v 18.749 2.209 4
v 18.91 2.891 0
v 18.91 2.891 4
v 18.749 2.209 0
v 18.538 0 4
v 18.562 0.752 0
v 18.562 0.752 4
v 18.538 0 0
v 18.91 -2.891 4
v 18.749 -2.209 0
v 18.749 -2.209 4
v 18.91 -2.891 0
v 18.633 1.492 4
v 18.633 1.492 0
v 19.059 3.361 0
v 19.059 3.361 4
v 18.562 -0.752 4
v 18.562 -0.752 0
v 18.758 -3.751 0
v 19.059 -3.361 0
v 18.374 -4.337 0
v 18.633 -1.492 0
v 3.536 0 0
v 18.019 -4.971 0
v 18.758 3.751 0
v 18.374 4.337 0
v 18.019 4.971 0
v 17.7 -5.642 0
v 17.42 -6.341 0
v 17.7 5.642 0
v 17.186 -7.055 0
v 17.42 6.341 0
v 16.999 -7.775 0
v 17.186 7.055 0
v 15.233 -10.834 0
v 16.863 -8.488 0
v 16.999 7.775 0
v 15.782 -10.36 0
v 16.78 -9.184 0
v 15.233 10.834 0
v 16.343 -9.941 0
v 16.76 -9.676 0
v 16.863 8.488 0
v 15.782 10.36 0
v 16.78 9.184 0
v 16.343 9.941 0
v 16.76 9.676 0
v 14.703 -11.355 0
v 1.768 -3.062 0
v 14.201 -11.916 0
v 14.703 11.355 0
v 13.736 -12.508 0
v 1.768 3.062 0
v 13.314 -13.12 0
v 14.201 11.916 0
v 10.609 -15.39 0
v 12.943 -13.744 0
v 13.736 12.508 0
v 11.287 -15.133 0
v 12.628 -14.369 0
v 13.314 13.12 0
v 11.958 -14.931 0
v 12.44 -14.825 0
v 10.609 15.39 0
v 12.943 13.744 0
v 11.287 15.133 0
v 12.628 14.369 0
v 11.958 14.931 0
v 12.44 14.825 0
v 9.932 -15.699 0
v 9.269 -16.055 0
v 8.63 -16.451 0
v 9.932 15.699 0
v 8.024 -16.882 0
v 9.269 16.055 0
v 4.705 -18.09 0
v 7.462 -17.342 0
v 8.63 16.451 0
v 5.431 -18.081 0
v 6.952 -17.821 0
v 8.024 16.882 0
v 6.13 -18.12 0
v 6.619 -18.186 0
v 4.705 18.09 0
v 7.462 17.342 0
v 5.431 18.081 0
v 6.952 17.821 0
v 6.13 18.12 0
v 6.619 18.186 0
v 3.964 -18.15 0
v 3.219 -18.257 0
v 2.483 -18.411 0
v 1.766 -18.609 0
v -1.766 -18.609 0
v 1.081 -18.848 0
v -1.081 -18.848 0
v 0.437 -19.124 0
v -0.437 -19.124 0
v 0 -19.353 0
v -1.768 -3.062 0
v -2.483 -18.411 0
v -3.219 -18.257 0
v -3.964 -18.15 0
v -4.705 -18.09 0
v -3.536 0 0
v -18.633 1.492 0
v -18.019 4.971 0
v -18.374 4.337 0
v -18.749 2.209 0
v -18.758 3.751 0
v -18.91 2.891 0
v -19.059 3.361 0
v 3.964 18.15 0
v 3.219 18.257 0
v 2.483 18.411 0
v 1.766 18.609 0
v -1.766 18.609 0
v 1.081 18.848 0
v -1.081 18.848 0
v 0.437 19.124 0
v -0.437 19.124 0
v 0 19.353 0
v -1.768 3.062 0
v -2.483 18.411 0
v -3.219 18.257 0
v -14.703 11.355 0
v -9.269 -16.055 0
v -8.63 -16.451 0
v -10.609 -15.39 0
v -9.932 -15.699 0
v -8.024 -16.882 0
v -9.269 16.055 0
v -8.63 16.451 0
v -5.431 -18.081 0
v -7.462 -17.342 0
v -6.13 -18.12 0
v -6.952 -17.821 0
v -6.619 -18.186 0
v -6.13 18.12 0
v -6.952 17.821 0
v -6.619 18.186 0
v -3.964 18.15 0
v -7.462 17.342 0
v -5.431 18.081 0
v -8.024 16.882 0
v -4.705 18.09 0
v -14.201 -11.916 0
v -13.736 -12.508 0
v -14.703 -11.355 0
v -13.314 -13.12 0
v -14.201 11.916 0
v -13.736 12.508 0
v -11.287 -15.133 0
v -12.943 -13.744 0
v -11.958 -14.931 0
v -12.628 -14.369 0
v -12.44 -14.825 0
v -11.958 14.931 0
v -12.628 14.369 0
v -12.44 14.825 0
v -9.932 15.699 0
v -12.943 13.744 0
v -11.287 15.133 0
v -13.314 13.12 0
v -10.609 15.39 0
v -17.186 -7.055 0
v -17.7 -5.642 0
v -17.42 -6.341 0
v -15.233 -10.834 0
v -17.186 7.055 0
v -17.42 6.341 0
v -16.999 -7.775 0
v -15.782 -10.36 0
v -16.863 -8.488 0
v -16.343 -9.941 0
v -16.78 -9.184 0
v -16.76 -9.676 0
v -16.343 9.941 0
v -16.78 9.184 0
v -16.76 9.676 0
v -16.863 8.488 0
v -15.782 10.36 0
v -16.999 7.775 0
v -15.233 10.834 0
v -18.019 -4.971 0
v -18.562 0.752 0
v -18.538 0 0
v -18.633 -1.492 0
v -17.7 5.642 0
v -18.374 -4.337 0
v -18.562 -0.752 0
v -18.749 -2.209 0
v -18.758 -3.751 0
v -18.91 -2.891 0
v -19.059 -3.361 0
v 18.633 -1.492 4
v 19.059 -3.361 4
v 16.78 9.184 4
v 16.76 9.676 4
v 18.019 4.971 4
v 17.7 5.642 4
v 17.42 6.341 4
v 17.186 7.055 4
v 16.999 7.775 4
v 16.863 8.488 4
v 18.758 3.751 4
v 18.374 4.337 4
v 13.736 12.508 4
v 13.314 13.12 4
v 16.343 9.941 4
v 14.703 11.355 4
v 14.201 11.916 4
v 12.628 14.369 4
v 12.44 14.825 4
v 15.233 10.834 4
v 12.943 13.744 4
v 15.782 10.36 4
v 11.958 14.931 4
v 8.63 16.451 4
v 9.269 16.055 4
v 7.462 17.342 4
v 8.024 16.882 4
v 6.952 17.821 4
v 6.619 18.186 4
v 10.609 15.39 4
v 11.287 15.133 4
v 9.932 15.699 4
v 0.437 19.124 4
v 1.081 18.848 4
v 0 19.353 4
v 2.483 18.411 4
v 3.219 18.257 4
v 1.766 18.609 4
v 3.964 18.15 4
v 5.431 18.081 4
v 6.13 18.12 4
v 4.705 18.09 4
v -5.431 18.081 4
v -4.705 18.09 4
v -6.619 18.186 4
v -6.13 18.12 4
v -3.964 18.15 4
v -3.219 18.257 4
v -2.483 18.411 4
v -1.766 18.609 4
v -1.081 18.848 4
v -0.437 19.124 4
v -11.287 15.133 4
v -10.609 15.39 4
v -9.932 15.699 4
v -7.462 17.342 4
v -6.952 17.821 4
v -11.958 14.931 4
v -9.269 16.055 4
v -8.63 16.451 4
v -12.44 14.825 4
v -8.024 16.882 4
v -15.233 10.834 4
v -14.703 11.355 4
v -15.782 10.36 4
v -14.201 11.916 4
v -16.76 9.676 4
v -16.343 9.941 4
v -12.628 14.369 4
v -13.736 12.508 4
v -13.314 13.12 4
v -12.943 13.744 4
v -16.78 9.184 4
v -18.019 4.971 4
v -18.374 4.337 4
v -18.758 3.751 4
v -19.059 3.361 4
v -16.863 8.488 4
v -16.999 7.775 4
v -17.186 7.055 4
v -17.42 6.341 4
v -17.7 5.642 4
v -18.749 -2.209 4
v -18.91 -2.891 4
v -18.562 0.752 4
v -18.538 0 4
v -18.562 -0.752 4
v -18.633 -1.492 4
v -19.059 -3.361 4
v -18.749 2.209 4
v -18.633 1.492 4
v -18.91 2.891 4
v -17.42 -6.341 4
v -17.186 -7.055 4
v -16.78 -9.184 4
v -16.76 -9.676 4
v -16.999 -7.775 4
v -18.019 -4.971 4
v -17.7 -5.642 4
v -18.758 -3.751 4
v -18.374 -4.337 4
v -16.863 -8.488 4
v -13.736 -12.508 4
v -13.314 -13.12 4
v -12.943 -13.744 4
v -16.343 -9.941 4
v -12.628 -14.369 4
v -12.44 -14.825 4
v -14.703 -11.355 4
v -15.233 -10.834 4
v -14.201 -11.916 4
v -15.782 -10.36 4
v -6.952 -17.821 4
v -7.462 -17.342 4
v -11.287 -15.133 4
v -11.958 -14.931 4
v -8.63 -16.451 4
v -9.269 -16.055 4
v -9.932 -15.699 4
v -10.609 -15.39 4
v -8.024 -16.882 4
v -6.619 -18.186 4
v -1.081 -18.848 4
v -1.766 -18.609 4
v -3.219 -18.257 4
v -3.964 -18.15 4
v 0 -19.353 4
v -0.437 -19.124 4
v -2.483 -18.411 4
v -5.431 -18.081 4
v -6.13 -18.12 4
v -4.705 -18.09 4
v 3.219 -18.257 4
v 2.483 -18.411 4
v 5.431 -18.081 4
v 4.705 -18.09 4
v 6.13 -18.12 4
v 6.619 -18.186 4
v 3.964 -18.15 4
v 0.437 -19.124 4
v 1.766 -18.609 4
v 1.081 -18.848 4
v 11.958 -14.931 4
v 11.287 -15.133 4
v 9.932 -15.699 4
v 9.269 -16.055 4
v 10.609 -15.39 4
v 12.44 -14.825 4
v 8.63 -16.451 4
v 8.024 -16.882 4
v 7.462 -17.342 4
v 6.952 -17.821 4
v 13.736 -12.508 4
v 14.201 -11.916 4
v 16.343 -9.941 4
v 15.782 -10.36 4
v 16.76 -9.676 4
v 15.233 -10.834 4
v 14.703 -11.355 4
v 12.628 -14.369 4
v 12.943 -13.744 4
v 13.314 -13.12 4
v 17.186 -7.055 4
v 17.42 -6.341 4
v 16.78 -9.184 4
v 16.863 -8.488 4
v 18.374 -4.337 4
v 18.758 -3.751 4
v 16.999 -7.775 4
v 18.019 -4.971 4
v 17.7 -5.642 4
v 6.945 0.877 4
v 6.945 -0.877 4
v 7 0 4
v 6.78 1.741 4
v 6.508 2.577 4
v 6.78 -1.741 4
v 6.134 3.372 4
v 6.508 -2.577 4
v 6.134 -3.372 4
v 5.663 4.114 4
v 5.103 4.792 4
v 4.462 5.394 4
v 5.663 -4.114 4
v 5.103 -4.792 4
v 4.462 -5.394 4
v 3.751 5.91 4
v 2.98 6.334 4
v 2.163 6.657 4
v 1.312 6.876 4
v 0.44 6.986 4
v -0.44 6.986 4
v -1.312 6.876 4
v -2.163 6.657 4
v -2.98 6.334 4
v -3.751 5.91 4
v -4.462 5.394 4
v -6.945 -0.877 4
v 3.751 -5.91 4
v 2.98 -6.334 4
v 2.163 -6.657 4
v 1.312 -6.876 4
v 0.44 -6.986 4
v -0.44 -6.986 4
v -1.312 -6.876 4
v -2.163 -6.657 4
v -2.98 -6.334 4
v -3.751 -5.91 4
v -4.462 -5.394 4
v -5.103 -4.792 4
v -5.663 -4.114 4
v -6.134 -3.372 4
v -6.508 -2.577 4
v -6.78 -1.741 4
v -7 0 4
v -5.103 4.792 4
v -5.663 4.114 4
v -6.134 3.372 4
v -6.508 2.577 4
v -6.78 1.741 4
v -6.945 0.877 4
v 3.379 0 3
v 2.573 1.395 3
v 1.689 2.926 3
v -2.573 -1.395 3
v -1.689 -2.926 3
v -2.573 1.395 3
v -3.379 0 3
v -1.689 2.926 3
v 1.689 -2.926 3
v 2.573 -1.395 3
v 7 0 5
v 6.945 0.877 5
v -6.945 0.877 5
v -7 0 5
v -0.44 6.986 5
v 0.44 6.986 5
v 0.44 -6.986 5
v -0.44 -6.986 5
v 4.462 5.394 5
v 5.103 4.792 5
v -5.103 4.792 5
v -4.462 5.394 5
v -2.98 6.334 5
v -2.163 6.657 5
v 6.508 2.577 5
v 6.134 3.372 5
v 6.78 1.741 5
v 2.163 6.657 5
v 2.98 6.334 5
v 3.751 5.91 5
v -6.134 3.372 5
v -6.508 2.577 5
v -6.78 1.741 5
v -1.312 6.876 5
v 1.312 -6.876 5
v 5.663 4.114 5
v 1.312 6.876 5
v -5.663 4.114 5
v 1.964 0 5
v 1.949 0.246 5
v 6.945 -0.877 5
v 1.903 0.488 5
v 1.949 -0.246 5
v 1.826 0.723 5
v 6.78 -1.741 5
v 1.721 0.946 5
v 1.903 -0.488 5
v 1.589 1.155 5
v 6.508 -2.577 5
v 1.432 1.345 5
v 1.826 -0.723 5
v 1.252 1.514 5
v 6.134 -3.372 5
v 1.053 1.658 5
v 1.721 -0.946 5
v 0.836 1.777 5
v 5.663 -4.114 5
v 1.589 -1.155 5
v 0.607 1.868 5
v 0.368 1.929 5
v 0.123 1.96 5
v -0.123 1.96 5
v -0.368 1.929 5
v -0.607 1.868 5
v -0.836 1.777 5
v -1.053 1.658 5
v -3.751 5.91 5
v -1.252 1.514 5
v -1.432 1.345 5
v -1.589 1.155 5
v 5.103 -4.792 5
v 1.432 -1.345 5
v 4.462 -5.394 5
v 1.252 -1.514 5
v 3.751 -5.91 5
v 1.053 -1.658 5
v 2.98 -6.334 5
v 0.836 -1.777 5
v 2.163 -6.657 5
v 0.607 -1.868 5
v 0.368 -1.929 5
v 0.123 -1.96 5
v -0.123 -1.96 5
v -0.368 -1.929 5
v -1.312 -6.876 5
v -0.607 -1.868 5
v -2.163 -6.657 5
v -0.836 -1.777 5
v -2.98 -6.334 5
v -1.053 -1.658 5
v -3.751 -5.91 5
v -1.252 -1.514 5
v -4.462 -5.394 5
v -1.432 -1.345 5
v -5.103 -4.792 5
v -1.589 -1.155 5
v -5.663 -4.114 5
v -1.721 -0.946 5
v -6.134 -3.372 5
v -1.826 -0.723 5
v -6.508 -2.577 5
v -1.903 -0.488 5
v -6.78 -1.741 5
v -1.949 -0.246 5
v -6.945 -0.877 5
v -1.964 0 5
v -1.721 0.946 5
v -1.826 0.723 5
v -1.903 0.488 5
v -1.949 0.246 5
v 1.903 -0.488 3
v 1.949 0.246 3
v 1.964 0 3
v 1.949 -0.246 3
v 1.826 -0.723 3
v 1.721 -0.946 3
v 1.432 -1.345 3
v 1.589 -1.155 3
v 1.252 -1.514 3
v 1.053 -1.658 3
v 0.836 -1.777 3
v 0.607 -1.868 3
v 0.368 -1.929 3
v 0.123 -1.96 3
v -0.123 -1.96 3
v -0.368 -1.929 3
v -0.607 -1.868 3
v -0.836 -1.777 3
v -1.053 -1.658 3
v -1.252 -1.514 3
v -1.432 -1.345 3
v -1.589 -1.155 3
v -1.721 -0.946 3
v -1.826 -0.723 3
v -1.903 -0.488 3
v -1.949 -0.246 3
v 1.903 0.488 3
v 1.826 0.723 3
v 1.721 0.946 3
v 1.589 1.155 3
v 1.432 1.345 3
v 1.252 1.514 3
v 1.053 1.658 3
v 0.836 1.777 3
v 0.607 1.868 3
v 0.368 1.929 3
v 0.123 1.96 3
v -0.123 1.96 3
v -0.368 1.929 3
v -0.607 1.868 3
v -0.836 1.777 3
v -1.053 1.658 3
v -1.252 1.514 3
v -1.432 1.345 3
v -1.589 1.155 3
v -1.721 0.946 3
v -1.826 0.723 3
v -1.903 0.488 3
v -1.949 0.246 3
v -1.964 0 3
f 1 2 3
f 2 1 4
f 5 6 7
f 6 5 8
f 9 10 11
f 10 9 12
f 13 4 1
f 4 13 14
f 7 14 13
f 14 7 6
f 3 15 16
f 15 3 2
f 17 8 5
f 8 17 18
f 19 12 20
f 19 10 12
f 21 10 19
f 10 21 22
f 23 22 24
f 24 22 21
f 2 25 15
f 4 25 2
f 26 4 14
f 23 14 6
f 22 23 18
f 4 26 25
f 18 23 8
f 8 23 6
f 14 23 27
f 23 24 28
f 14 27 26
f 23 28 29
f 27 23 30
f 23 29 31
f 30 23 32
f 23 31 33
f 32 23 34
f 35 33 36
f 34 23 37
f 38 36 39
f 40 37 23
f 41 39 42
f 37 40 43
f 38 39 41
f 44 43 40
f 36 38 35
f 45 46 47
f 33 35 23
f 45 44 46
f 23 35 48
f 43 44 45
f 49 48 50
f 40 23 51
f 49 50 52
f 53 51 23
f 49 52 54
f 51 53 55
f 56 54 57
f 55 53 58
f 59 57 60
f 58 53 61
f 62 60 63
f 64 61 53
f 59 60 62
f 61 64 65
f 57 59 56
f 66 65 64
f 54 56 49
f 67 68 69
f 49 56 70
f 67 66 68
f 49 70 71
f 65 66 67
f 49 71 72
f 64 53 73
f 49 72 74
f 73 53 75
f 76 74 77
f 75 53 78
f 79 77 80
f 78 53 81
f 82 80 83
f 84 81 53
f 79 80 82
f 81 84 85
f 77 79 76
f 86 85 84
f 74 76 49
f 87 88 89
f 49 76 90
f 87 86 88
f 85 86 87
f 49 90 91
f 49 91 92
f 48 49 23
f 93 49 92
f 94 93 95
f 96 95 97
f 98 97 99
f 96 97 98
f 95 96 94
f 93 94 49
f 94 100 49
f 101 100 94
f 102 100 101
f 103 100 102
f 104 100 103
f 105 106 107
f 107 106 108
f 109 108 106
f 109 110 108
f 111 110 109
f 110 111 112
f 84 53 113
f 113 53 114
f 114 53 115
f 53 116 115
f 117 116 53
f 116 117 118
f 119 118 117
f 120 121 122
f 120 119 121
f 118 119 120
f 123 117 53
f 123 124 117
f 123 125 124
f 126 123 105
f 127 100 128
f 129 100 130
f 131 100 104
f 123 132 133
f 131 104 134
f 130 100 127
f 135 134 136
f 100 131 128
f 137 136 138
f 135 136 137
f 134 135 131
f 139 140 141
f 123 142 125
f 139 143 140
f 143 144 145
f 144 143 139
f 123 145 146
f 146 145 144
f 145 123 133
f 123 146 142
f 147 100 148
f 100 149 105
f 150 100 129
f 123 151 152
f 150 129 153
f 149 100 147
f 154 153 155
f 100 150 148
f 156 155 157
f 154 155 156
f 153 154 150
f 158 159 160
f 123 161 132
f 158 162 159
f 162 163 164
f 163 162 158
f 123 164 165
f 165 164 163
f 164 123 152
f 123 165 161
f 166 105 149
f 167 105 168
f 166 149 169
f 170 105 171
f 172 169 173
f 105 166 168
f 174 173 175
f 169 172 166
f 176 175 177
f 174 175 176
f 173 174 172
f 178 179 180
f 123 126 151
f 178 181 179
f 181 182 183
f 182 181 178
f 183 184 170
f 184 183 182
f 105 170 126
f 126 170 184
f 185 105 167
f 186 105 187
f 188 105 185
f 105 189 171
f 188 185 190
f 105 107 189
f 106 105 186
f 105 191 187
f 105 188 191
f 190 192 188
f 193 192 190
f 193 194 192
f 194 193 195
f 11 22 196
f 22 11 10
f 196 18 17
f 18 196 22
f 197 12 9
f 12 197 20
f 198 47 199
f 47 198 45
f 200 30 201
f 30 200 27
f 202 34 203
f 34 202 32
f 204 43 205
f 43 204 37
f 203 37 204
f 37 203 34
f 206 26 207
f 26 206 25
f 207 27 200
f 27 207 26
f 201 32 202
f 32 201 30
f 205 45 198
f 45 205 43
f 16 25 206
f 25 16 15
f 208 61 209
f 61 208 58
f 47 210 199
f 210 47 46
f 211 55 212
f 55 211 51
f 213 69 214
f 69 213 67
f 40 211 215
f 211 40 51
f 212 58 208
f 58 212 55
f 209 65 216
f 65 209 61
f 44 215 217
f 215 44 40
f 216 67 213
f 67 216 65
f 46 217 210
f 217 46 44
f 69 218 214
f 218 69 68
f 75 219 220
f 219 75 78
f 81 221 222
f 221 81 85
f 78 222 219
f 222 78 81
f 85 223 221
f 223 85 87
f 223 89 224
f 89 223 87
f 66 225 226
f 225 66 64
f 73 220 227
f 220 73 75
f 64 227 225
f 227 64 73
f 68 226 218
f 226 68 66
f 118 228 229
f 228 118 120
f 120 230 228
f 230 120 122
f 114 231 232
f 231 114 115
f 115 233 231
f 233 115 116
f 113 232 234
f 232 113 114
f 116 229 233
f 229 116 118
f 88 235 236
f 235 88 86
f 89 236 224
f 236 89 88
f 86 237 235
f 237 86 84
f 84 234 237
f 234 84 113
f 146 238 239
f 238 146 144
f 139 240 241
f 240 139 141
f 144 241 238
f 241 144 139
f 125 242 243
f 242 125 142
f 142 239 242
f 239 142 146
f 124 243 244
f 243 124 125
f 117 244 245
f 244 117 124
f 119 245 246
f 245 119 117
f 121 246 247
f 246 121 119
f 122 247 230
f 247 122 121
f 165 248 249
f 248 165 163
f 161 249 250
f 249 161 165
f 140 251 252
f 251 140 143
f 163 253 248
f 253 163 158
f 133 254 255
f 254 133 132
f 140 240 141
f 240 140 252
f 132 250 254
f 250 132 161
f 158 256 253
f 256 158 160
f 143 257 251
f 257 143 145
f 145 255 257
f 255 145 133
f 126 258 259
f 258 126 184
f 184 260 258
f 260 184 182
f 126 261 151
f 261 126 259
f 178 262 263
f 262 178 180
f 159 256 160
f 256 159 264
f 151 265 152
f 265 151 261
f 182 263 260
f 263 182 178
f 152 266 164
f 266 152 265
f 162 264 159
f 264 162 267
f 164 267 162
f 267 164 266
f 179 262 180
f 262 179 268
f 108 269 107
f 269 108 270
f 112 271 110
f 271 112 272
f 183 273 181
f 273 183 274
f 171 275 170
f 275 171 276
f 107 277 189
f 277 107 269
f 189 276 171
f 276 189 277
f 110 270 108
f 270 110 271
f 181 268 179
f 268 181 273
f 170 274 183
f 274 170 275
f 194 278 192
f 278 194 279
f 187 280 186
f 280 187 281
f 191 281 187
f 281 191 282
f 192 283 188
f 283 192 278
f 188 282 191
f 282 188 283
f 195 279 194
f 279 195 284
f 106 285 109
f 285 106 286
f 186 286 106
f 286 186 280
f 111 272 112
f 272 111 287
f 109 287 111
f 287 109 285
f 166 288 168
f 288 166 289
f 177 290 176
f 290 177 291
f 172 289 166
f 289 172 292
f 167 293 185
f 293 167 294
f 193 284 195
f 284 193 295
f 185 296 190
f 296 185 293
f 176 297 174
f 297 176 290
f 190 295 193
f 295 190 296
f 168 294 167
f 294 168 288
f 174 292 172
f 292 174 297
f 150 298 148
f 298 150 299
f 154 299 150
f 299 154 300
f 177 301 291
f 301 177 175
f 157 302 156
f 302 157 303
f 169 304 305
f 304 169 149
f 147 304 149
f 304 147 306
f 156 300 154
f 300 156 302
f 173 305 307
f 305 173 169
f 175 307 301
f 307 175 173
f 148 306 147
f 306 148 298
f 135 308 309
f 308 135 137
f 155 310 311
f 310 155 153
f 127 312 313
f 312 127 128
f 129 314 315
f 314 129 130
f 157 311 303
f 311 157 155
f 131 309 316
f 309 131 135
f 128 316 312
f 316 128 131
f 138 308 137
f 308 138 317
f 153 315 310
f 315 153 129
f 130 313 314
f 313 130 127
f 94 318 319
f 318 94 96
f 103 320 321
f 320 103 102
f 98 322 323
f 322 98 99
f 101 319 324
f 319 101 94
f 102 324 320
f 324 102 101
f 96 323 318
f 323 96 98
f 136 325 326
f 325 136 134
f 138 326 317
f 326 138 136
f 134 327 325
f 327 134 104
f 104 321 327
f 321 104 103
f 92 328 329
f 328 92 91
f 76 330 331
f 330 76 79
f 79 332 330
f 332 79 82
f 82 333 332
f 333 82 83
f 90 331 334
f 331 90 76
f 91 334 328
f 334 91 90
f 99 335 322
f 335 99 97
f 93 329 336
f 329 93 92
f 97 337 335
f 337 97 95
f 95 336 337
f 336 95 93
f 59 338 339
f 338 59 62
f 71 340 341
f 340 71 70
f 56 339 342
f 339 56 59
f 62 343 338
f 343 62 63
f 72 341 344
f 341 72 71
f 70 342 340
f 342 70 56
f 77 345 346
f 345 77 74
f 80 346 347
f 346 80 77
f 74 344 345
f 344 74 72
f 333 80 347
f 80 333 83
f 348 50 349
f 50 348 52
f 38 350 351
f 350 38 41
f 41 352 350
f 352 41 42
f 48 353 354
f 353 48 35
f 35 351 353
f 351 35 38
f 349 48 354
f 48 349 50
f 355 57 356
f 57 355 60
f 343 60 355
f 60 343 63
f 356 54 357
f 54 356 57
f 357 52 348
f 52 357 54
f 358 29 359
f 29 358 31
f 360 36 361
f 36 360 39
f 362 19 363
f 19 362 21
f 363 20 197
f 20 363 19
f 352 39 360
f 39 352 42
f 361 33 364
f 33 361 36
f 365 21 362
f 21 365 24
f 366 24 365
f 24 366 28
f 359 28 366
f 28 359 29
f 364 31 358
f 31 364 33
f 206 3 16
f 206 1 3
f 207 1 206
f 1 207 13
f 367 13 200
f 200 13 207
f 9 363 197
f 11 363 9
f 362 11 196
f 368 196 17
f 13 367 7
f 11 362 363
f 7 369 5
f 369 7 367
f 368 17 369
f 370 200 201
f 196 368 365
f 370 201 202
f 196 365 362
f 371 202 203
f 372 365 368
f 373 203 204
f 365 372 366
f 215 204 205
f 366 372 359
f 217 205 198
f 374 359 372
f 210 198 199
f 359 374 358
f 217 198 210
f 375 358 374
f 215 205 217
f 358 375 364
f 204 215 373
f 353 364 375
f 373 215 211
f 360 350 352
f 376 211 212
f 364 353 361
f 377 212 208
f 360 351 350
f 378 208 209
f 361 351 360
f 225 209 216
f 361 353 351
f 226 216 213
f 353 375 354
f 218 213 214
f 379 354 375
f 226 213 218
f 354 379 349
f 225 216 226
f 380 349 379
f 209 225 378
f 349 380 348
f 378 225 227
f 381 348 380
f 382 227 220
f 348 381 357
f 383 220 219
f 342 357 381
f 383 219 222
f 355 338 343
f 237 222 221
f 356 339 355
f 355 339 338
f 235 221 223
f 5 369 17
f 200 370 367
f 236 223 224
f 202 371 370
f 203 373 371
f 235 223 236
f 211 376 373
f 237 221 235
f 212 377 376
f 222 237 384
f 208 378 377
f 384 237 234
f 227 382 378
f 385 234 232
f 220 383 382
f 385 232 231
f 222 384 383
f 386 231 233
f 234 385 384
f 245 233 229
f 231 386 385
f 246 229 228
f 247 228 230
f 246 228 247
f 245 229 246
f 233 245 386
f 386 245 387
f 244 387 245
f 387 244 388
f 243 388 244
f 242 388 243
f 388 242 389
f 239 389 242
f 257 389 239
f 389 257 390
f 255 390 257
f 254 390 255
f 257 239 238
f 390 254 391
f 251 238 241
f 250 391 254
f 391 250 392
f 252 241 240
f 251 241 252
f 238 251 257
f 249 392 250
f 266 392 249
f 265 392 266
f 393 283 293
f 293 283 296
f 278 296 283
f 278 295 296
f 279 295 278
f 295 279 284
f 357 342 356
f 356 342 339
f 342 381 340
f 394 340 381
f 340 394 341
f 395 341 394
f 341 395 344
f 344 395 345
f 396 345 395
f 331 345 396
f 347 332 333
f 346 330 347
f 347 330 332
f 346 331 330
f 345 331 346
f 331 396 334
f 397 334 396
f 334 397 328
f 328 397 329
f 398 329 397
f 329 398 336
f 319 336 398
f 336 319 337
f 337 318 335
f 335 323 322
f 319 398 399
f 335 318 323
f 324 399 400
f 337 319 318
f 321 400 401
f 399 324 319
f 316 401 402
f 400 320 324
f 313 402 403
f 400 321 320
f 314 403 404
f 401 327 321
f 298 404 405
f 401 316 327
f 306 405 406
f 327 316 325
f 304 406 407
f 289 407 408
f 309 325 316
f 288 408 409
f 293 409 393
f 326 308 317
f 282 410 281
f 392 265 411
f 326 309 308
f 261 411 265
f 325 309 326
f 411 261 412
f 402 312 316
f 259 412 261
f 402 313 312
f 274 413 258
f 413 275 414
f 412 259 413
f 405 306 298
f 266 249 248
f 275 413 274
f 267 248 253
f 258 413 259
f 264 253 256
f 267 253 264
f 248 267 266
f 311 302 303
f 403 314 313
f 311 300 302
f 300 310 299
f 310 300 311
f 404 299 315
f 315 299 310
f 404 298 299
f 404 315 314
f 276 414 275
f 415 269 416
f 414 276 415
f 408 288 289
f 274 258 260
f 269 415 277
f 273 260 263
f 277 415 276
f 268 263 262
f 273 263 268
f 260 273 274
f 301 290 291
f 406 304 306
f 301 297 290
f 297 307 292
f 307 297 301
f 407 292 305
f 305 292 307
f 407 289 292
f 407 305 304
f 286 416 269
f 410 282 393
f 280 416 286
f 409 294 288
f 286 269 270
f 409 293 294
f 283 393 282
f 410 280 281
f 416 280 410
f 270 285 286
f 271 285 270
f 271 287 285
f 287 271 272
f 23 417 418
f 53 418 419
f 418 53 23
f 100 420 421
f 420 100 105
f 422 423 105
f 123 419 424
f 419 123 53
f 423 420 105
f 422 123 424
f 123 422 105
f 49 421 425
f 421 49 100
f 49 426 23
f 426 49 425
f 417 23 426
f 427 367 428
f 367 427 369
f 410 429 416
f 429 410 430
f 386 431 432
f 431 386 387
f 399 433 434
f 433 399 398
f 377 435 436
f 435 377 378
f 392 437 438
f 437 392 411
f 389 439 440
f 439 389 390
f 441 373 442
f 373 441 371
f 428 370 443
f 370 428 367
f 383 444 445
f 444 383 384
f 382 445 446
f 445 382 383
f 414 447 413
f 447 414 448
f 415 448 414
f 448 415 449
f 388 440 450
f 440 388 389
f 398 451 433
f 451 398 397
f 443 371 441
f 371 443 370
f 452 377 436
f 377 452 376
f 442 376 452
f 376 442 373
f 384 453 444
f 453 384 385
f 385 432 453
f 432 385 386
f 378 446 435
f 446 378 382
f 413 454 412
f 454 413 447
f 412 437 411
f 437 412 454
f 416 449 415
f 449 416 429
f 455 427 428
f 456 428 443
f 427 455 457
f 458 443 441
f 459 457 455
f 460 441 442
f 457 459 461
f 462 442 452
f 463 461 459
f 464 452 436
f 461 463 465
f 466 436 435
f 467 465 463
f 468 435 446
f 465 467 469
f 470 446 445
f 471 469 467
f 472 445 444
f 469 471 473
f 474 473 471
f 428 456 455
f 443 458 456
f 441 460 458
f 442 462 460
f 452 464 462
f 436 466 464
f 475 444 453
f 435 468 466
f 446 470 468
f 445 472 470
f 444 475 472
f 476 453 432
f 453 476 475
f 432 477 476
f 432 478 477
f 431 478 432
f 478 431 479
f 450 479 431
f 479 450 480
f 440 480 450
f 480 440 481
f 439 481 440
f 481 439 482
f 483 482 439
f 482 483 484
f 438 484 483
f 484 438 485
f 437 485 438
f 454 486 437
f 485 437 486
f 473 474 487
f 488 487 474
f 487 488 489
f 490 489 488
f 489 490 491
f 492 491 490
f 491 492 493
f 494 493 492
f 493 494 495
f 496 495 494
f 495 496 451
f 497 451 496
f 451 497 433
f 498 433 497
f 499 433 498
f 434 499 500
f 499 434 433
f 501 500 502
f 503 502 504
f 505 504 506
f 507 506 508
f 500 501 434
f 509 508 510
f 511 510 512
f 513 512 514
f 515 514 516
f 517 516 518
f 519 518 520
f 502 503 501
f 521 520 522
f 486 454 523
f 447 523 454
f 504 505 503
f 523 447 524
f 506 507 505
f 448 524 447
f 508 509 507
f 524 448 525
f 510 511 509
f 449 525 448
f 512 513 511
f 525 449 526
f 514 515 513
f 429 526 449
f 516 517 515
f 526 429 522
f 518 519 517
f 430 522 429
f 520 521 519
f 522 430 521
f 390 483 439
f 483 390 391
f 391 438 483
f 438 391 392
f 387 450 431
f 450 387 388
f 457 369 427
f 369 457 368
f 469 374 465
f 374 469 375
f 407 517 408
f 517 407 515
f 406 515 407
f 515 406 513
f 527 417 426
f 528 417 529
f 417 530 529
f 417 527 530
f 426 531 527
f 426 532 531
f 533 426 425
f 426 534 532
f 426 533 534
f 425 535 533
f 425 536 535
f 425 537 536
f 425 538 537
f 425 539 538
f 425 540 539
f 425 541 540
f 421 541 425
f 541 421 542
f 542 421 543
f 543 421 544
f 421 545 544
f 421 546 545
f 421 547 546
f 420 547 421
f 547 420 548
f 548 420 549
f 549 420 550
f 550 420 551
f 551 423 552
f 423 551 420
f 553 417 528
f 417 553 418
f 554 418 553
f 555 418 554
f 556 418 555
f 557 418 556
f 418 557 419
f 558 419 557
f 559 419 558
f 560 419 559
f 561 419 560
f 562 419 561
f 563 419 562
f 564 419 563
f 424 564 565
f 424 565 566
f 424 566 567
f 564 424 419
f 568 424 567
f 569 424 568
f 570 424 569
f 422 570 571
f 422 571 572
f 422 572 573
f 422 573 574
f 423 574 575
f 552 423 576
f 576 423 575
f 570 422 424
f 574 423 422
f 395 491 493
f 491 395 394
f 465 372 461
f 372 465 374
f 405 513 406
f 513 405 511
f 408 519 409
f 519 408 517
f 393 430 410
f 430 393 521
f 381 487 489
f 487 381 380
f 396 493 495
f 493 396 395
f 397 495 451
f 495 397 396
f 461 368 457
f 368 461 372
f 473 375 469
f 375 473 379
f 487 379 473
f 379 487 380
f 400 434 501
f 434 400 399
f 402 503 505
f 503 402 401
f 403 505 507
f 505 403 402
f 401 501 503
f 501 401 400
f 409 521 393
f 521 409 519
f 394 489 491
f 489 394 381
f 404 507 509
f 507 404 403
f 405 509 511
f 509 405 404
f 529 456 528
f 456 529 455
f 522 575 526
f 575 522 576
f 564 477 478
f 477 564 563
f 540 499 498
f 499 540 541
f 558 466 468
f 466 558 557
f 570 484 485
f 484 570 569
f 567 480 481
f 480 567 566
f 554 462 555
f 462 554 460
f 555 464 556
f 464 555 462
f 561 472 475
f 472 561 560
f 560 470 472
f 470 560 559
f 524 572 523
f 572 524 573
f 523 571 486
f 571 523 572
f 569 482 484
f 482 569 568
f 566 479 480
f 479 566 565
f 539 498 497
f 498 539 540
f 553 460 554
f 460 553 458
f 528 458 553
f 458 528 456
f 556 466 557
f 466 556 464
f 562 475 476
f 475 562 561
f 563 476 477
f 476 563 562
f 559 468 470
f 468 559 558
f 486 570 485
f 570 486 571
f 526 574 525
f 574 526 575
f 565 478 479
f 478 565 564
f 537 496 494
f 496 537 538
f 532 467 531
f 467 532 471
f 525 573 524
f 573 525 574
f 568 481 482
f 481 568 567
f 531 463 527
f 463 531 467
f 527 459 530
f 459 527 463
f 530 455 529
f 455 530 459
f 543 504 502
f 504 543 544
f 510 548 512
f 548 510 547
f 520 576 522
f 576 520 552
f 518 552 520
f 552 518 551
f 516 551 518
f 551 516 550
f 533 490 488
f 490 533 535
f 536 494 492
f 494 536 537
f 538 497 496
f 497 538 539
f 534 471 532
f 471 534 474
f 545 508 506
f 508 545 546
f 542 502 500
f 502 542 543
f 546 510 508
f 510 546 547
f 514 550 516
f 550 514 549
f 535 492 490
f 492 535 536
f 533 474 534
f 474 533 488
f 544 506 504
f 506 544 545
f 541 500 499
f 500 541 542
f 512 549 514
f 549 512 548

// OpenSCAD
radius=20;
$fn=50;
module bottom() {
    difference() {
        cylinder(r=radius,h=4);
        for(i=[0:20:360])rotate([0,0,i])translate([radius/13*14,0])scale([1,2,1])cylinder(r=3,h=8);
        cylinder(r1=9/2*0.785714286,r2=8.2/2*0.785714286,h=6,$fn=6);            
    }
}
module top() {
    translate([0,0,3])difference() {
        cylinder(r=7,h=2);
        //translate([0,0,0])cylinder(r=8.78/2,h=50,$fn=6);
    }
}
difference() {
    union() {
        top();
        bottom();
    }
    cylinder(r=2.5*0.785714286,h=50);
}
